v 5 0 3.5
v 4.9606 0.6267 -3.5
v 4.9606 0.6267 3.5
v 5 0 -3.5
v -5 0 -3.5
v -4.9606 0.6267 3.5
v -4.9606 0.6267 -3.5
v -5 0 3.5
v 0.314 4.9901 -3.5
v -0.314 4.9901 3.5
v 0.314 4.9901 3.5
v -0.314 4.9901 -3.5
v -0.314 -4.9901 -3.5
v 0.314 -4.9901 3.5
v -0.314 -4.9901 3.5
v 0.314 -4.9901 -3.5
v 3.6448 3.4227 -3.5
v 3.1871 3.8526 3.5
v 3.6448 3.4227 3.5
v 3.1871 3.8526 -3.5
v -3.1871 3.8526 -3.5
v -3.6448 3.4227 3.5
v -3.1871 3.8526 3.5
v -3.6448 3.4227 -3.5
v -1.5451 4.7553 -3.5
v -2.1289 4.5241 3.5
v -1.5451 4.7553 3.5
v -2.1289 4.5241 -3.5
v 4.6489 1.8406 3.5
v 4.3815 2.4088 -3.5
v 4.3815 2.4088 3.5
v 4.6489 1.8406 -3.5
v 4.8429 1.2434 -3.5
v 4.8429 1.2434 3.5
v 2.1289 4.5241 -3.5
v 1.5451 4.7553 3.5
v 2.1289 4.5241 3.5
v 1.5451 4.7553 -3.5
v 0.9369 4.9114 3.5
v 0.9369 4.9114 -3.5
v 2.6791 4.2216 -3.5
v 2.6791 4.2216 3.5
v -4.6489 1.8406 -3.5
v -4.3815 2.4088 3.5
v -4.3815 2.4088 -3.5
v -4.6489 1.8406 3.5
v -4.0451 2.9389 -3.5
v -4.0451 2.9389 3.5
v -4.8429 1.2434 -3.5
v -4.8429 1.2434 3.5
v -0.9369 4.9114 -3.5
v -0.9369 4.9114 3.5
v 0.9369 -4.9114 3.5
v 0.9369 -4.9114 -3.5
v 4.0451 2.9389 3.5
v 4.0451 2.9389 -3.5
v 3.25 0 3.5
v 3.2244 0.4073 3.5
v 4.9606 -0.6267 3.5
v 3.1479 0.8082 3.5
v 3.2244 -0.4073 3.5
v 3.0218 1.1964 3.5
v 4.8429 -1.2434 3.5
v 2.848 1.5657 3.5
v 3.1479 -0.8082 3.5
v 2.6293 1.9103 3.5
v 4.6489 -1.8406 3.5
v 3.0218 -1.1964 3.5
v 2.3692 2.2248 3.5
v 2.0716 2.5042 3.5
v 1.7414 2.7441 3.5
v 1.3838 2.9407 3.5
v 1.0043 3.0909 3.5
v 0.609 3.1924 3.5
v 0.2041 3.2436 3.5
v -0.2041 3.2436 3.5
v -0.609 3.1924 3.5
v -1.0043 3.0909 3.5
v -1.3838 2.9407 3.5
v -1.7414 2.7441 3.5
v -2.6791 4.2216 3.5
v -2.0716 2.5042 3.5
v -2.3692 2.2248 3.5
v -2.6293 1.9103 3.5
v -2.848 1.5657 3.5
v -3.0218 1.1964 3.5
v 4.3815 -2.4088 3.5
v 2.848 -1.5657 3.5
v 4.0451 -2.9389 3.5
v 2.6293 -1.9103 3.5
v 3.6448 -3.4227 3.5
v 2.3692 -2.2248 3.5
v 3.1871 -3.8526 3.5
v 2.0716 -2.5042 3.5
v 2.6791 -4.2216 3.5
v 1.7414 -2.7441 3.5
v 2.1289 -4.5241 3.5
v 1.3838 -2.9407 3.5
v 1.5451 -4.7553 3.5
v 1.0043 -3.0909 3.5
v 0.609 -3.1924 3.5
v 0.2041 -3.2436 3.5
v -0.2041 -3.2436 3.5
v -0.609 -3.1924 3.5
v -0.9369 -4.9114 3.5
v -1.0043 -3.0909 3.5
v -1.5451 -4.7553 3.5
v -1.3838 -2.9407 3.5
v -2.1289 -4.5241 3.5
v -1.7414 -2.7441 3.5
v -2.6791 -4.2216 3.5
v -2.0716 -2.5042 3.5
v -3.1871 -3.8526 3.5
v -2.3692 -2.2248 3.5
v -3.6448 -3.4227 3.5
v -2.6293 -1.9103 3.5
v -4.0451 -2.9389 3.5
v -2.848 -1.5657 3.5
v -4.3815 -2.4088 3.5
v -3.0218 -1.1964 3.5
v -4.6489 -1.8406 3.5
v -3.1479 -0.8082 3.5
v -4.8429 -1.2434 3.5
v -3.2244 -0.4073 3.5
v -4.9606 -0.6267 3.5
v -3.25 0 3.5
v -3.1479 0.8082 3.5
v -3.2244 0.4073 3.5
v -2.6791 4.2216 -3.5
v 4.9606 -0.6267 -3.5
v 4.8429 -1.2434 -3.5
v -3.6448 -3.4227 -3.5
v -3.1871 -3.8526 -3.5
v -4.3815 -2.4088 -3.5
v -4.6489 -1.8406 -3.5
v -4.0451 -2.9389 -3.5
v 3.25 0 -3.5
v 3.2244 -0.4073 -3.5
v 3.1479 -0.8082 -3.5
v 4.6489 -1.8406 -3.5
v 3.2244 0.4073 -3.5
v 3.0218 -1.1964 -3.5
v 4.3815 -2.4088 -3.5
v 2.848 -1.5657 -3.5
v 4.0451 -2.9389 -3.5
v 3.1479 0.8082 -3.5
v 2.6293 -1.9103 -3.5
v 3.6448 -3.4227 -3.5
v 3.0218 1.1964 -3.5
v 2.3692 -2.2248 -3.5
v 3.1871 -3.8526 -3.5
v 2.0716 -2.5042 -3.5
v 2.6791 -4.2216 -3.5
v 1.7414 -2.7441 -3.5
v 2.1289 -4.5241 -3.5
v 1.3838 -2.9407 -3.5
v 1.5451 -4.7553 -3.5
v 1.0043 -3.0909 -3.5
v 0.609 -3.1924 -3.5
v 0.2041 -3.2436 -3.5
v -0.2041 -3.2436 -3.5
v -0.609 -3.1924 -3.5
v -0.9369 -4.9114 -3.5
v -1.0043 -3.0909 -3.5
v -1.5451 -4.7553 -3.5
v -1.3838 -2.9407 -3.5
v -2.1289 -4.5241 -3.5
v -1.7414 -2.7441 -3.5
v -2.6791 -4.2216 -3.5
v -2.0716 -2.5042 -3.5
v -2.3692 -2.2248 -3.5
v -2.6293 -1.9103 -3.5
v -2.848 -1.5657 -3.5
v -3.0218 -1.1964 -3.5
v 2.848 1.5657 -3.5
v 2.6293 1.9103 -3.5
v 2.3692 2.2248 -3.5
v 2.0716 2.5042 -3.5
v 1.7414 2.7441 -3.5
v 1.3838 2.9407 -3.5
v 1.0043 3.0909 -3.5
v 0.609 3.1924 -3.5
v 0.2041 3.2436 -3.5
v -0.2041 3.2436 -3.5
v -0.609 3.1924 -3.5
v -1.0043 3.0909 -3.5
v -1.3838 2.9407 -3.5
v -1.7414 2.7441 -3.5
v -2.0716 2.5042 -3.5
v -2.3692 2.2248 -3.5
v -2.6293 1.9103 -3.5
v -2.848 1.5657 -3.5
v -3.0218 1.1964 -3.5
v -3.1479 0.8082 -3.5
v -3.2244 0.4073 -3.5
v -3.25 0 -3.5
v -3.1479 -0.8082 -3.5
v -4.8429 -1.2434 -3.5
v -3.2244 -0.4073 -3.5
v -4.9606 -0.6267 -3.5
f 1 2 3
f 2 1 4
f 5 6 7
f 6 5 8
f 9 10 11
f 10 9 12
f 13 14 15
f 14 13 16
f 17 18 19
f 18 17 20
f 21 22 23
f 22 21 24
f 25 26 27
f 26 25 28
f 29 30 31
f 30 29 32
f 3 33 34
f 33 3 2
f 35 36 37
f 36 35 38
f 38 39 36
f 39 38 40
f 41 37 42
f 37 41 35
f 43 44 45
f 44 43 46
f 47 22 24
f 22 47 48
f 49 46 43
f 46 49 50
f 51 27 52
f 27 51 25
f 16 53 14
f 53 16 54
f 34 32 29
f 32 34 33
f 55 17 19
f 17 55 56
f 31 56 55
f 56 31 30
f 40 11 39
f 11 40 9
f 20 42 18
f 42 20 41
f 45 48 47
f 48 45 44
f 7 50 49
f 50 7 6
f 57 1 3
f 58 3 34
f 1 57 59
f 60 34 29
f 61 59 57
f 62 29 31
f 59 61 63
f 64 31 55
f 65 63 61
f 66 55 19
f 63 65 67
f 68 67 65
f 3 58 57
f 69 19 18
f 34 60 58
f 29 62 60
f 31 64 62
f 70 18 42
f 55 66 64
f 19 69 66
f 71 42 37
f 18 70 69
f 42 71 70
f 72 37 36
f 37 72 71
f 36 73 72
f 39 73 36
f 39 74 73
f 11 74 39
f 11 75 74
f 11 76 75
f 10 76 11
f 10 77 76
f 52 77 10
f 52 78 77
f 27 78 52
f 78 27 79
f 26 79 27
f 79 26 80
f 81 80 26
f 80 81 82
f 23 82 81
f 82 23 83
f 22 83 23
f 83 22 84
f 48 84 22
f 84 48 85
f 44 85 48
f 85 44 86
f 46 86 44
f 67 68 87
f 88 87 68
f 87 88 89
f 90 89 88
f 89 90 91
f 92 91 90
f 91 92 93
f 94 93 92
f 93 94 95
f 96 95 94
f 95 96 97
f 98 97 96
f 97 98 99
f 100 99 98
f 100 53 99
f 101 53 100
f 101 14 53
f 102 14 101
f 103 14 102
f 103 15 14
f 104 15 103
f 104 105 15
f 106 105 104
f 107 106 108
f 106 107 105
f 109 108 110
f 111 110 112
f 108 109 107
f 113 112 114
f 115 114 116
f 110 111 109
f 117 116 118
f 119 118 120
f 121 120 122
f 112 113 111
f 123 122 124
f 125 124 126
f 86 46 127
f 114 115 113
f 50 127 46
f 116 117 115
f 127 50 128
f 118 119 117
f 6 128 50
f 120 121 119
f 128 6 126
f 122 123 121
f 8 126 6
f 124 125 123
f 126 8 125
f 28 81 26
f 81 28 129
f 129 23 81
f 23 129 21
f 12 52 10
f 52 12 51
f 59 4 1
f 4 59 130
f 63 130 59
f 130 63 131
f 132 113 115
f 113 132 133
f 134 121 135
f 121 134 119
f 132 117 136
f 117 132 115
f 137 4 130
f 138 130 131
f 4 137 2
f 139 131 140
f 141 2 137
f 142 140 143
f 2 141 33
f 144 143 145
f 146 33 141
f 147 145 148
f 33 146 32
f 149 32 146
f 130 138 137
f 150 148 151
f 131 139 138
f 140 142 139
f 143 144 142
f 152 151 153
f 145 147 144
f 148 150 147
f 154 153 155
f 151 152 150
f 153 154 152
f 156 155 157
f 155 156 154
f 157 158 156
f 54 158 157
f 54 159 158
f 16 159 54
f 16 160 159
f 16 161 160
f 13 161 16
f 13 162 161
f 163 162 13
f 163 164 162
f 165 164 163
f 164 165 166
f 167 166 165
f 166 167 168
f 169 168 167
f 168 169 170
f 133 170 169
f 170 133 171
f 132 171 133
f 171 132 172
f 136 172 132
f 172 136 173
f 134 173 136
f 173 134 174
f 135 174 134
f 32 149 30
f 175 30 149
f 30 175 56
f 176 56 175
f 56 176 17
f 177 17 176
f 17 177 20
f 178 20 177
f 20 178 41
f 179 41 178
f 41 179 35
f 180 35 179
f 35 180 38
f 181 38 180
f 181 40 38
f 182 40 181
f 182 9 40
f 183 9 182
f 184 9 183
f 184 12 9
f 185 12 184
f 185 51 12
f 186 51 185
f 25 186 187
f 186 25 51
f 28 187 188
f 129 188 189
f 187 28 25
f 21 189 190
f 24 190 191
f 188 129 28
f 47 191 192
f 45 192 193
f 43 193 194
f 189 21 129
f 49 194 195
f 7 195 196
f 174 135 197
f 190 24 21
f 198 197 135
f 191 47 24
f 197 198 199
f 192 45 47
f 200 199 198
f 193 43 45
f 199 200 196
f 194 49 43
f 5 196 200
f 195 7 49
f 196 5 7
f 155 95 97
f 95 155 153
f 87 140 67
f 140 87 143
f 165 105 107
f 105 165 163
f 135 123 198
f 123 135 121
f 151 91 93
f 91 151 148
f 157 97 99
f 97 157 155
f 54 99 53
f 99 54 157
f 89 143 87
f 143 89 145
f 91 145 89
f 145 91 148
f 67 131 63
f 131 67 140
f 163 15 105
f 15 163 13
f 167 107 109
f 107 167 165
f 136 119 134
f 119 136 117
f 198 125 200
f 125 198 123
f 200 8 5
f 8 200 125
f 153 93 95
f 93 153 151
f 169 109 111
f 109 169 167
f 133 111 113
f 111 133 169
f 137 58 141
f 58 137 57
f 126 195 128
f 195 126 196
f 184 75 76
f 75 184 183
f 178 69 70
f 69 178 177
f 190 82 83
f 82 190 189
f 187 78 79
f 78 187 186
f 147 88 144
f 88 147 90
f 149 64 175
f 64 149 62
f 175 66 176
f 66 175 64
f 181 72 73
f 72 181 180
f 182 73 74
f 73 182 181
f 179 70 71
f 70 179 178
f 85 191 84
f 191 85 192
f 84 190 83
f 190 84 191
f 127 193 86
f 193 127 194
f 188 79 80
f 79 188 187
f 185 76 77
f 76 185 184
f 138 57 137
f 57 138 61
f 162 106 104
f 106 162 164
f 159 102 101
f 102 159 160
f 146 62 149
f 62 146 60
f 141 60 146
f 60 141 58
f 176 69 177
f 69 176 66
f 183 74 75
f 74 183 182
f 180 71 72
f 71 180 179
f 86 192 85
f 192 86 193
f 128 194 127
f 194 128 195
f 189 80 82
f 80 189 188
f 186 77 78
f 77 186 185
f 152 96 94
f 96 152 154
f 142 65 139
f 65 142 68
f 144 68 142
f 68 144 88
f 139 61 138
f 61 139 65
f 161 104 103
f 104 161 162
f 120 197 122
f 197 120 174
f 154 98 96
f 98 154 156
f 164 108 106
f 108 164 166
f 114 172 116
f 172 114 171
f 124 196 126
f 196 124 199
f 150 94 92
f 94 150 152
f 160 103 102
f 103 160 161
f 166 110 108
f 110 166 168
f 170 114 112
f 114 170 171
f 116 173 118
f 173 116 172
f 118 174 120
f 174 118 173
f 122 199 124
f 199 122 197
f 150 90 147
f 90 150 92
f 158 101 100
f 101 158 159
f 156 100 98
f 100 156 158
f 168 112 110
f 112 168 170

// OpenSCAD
$fn = 50;


difference() {
	union() {
		translate(v = [0, 0, -3.5000000000]) {
			cylinder(h = 7, r = 5.0000000000);
		}
	}
	union() {
		translate(v = [0, 0, -100.0000000000]) {
			cylinder(h = 200, r = 3.2500000000);
		}
	}
}
